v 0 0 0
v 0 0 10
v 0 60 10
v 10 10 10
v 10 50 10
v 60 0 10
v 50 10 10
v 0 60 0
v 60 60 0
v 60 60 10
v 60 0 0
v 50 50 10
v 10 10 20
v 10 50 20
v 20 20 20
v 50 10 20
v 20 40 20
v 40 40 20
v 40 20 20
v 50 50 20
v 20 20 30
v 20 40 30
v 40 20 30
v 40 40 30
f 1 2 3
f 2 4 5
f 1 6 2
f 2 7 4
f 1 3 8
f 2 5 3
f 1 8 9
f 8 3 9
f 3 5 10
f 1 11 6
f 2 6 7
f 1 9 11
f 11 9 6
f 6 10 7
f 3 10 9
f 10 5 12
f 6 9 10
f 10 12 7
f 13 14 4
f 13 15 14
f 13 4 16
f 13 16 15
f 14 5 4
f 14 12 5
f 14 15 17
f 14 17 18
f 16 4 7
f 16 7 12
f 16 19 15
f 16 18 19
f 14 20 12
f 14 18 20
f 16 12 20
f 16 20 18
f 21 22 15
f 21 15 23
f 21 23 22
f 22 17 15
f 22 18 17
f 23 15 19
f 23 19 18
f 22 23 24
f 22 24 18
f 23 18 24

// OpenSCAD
cube([60, 60, 10]);
translate([10, 10, 10]) cube([40, 40, 10]);
translate([20, 20, 20]) cube([20, 20, 10]);
